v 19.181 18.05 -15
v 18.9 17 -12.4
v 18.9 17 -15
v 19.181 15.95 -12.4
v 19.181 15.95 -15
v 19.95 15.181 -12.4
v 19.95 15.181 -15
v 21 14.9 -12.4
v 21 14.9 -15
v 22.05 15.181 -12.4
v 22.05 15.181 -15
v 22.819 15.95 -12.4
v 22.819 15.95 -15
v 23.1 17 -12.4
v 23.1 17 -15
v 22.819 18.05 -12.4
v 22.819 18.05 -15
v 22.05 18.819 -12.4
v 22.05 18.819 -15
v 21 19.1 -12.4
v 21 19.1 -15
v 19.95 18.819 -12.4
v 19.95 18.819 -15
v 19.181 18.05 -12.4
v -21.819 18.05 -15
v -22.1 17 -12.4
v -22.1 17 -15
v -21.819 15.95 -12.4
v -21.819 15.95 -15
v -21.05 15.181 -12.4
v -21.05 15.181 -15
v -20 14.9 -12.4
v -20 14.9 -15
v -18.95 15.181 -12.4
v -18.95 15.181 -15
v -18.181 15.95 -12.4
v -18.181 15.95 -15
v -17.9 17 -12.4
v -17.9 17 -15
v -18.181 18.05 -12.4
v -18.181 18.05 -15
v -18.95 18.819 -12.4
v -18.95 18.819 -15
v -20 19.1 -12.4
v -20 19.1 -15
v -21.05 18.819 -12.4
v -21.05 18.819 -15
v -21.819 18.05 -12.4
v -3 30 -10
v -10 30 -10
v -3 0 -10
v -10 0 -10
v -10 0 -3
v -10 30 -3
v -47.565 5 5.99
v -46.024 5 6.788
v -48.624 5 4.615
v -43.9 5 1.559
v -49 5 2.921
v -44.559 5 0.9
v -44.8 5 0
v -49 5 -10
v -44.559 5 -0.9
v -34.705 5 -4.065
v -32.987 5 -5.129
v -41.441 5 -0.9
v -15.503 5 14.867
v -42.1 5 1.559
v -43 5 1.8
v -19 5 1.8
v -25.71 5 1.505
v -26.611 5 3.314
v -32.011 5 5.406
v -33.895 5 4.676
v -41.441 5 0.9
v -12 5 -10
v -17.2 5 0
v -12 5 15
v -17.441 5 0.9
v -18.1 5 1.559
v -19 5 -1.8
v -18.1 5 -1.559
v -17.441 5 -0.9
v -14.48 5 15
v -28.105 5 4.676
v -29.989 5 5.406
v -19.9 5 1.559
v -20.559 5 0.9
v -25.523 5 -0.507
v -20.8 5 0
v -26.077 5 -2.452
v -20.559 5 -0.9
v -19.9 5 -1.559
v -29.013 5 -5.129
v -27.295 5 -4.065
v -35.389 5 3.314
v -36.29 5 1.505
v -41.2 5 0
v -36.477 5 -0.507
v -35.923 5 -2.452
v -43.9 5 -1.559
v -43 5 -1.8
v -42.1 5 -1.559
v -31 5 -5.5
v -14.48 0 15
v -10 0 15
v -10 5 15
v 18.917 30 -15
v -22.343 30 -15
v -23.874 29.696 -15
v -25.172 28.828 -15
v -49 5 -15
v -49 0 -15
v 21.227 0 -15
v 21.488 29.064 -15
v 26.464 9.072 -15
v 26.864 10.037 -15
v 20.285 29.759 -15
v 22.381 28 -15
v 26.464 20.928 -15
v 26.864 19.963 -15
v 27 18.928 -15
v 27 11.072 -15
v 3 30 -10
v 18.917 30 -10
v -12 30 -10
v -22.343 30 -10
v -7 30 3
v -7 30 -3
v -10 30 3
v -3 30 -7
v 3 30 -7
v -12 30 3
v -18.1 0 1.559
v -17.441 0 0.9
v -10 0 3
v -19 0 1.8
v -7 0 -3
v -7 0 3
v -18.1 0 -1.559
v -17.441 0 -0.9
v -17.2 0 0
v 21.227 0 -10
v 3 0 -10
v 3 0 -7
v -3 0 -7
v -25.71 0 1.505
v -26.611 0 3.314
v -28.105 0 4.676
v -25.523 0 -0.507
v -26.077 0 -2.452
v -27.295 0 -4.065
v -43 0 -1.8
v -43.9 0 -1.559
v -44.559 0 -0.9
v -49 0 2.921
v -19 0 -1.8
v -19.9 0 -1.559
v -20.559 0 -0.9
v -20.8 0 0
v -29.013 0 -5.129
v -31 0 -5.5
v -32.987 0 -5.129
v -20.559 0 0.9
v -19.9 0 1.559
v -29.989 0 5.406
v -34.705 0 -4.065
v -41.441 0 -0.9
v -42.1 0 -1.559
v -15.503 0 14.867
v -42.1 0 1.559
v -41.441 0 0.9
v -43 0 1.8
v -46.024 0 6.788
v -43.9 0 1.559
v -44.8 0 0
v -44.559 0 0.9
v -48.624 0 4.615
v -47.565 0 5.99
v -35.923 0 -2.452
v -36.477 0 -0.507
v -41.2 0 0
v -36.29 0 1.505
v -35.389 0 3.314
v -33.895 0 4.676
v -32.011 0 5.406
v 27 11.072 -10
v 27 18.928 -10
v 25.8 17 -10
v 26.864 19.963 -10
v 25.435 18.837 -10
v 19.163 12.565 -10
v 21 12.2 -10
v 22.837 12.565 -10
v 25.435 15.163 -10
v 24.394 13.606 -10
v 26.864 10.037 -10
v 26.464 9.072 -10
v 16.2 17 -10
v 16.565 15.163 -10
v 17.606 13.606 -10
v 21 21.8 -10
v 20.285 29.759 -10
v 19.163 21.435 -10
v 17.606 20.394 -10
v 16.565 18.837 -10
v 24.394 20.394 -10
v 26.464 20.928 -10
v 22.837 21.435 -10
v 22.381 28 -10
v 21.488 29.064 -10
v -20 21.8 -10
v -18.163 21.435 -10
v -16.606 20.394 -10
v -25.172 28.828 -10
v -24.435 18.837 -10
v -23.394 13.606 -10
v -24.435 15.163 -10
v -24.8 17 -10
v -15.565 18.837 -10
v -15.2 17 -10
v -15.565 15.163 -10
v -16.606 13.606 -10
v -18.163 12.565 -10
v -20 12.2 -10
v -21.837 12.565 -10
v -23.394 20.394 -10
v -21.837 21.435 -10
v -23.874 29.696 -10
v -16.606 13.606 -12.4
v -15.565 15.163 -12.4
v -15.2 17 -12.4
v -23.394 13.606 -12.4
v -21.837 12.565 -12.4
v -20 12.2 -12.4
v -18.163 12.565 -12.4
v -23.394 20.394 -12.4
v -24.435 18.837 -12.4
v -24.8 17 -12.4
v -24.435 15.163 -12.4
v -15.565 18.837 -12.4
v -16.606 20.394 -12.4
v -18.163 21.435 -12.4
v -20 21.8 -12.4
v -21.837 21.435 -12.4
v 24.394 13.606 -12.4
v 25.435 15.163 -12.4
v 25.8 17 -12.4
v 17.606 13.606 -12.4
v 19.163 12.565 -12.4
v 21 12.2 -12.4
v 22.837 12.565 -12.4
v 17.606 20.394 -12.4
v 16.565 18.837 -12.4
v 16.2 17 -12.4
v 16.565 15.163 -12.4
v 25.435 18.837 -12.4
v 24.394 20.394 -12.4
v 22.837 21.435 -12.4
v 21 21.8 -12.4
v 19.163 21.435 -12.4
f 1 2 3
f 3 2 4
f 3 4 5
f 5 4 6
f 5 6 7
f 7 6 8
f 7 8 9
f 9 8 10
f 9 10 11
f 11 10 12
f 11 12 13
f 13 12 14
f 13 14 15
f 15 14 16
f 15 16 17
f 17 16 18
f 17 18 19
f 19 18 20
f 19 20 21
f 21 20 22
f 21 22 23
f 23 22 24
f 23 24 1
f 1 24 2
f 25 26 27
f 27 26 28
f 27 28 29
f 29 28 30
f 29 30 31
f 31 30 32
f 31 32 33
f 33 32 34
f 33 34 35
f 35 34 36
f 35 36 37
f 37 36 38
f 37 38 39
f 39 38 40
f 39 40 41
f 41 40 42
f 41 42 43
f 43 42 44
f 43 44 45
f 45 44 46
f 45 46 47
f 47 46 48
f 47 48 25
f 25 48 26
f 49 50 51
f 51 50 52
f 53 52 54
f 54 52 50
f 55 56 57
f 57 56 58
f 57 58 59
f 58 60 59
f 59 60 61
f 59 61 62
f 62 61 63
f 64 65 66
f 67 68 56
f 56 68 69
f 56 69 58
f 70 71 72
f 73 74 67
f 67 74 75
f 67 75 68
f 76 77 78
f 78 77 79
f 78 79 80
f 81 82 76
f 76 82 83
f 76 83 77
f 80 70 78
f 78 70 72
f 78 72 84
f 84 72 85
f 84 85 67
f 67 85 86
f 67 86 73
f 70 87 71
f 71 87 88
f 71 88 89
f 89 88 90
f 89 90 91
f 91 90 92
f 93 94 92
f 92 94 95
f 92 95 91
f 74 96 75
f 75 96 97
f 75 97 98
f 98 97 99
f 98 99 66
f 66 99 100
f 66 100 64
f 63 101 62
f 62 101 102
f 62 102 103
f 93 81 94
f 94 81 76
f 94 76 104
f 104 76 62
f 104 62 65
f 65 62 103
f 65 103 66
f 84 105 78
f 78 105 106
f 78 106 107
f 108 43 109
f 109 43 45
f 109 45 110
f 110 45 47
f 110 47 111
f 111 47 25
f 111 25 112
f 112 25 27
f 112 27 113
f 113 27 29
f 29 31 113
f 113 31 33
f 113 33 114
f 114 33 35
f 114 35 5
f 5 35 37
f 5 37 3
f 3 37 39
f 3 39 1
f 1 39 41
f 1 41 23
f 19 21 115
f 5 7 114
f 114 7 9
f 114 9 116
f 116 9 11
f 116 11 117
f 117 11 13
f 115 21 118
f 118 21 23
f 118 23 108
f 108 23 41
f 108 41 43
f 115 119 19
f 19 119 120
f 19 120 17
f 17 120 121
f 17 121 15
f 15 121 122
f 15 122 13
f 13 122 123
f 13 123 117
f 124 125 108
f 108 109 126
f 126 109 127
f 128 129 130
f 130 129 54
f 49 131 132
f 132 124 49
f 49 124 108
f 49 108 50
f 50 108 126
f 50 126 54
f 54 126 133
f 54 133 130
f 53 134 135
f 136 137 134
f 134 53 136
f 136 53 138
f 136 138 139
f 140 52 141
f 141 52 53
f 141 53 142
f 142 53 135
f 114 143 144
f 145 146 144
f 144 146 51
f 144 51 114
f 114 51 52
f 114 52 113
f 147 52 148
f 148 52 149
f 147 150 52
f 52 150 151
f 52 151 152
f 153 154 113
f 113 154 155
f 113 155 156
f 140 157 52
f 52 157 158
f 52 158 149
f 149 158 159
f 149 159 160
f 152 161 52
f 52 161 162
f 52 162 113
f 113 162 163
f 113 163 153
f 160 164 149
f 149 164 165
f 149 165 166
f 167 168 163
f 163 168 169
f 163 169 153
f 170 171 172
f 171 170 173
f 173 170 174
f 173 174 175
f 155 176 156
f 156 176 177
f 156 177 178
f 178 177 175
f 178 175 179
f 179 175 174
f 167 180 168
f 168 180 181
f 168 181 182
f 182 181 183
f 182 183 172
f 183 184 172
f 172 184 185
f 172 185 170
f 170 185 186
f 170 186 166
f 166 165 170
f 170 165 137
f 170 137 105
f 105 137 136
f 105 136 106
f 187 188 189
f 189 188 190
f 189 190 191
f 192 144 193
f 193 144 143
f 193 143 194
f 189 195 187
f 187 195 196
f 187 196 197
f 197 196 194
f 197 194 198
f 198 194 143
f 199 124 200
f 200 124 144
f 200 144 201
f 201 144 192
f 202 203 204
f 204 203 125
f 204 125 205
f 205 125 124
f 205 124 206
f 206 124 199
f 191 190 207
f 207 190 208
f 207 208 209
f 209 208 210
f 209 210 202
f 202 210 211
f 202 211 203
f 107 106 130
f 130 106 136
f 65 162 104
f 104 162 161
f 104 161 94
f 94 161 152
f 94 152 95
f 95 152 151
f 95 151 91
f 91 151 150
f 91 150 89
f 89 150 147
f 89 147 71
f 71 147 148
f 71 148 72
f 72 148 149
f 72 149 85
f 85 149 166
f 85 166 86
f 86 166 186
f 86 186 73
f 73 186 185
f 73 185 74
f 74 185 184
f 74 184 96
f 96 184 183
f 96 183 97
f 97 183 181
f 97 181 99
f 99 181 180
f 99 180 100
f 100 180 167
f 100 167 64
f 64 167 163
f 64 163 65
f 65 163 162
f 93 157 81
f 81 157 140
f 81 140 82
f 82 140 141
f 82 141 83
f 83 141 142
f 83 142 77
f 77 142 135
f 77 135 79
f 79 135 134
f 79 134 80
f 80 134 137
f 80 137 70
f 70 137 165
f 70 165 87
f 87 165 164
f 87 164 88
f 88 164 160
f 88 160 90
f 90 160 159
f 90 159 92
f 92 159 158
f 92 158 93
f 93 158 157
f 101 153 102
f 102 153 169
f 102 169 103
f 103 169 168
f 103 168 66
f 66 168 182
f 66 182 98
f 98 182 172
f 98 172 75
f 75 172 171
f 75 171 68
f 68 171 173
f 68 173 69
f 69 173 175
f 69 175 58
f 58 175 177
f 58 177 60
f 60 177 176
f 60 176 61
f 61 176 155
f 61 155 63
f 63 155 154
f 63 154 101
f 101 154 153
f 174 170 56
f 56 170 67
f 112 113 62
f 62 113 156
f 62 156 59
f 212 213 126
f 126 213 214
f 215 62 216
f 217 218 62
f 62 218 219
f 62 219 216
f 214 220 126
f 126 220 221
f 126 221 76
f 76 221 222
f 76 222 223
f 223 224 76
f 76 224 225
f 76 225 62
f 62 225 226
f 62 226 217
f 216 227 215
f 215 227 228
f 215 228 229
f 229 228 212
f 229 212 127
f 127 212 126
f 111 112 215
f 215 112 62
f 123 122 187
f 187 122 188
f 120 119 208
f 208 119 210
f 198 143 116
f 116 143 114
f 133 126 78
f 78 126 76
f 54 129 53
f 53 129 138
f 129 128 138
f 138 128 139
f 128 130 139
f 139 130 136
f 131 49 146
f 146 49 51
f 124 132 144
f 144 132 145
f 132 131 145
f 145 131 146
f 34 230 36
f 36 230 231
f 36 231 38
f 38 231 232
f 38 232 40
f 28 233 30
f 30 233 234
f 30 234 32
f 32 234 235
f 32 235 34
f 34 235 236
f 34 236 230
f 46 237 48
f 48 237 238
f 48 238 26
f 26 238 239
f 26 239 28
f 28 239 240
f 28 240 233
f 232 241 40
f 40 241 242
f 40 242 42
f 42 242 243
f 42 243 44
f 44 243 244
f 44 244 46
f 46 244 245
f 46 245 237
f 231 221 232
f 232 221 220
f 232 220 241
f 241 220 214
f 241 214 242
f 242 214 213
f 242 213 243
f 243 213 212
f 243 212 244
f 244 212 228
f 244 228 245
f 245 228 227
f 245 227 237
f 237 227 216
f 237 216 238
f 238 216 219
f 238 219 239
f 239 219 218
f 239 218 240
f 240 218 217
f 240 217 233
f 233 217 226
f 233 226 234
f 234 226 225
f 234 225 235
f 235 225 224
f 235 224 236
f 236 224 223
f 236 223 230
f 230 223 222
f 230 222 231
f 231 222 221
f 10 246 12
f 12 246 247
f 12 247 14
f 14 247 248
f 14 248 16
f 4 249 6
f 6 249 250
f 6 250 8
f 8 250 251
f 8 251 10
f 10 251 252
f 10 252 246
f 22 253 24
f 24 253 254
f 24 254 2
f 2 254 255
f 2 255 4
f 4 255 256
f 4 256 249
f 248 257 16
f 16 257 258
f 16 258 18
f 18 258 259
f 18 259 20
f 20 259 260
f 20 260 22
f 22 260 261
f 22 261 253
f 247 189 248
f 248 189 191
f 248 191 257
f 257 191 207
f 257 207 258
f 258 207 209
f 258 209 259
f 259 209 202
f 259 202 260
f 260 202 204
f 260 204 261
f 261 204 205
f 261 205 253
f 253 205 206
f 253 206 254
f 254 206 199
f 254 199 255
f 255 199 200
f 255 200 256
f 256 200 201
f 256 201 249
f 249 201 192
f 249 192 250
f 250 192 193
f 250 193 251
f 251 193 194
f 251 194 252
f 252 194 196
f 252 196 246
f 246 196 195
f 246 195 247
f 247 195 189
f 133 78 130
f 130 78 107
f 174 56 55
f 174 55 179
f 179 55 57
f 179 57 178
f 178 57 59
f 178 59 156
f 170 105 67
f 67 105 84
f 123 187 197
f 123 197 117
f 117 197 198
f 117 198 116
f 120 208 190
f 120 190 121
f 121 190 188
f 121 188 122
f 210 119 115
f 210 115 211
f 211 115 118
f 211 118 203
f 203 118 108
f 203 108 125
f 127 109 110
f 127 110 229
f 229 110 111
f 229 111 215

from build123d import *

# Parameters (mm, degrees)
SKETCH1_W                     = 30
SKETCH1_H                     = 30
BOSS_EXTRUDE1_DEPTH           = 30
SKETCH2_W                     = 20
SKETCH2_H                     = 20
CUT_EXTRUDE1_DEPTH            = 37.742346142
SKETCH3_W                     = 30
SKETCH3_H                     = 5
BOSS_EXTRUDE2_DEPTH           = 40
SKETCH4_R                     = 5.5
SKETCH4_R_2                   = 1.8
CUT_EXTRUDE2_DEPTH            = 65.420493634
CUT_EXTRUDE3_DEPTH            = 63.24949799
SKETCH5_W                     = 5
SKETCH5_H                     = 25
BOSS_EXTRUDE4_DEPTH           = 34
CHAMFER1_SIZE                 = 25
SKETCH8_R                     = 2.1
CUT_EXTRUDE4_DEPTH            = 63.657800791
SKETCH9_W                     = 5
SKETCH9_H                     = 30
BOSS_EXTRUDE5_DEPTH           = 12
CHAMFER2_SIZE                 = 10
CHAMFER2_SIZE2                = 5.773502692
SKETCH10_R                    = 2.1
CUT_EXTRUDE5_DEPTH            = 63.657800791
BODY_MOVE_COPY1_START         = -15
BODY_MOVE_COPY1_DEPTH         = 31
BODY_MOVE_COPY1_START_2       = -10
BODY_MOVE_COPY1_2_DEPTH       = 26
BODY_MOVE_COPY1_3_OUTLINE_W   = 34
BODY_MOVE_COPY1_3_OUTLINE_H   = 5
BODY_MOVE_COPY1_3_DEPTH       = 30
BODY_MOVE_COPY1_4_DEPTH       = 5
BODY_MOVE_COPY1_5_OUTLINE_R   = 5.5
BODY_MOVE_COPY1_5_OUTLINE_R_2 = 1.8
BODY_MOVE_COPY1_5_DEPTH       = 5
SKETCH11_W                    = 3
SKETCH11_H                    = 25
CUT_EXTRUDE6_DEPTH            = 25
SKETCH12_W                    = 25
SKETCH12_H                    = 25
CUT_EXTRUDE7_DEPTH            = 60.380131357
SKETCH13_W                    = 3
SKETCH13_H                    = 6
SKETCH13_W_2                  = 6
SKETCH13_H_2                  = 3
BOSS_EXTRUDE6_DEPTH           = 30
SKETCH14_R                    = 4.8
CUT_EXTRUDE9_DEPTH            = 2.4
CHAMFER3_SIZE                 = 12
CHAMFER3_SIZE2                = 25
FILLET1_R                     = 4
FILLET2_R                     = 4


with BuildPart() as part:
    # Sketch1 → Boss-Extrude1 (new body)
    with BuildSketch(Plane(origin=(0, 0, 0), x_dir=(1, 0, 0), z_dir=(0, 1, 0))):
        Rectangle(SKETCH1_W, SKETCH1_H)
    extrude(amount=BOSS_EXTRUDE1_DEPTH)

    # Sketch2 → Cut-Extrude1 (cut, through all)
    with BuildSketch(Plane(origin=(0, 30, 0), x_dir=(1, 0, 0), z_dir=(0, 1, 0))):
        Rectangle(SKETCH2_W, SKETCH2_H)
    extrude(amount=-CUT_EXTRUDE1_DEPTH, mode=Mode.SUBTRACT)

    # Sketch3 → Boss-Extrude2 (add)
    with BuildSketch(Plane(origin=(15, 0, 0), x_dir=(0, 0, -1), z_dir=(1, 0, 0))):
        with Locations((0, 2.5)):
            Rectangle(SKETCH3_W, SKETCH3_H)
    extrude(amount=BOSS_EXTRUDE2_DEPTH)

    # Sketch4 → Cut-Extrude2 (cut, through all)
    with BuildSketch(Plane.XZ):
        with Locations(Location((31, 0, 0), (0, 0, 270))):
            Circle(SKETCH4_R)
        with Locations(Location((19, 0, 0), (0, 0, 270))):
            Circle(SKETCH4_R_2)
        with Locations(Location((43, 0, 0), (0, 0, 270))):
            Circle(SKETCH4_R_2)
    extrude(amount=-CUT_EXTRUDE2_DEPTH, mode=Mode.SUBTRACT)

    # Sketch7 → Cut-Extrude3 (cut, through all)
    with BuildSketch(Plane(origin=(0, 5, 0), x_dir=(1, 0, 0), z_dir=(0, 1, 0))):
        Polygon((15, -15), (49, -6), (49, 15), (55, 15), (55, -15), align=None)
    extrude(amount=-CUT_EXTRUDE3_DEPTH, mode=Mode.SUBTRACT)

    # Sketch5 → Boss-Extrude4 (add)
    with BuildSketch(Plane(origin=(15, 0, 0), x_dir=(0, 0, -1), z_dir=(1, 0, 0))):
        with Locations((12.5, 17.5)):
            Rectangle(SKETCH5_W, SKETCH5_H)
    extrude(amount=BOSS_EXTRUDE4_DEPTH)

    # Chamfer1
    chamfer1_edges = [part.edges().sort_by_distance(p)[0] for p in [
        (49, 30, -12.5),
    ]]
    chamfer(chamfer1_edges, length=CHAMFER1_SIZE)

    # Sketch8 → Cut-Extrude4 (cut, through all)
    with BuildSketch(Plane.XY.offset(-10)):
        with Locations((20, 17)):
            Circle(SKETCH8_R)
    extrude(amount=-CUT_EXTRUDE4_DEPTH, mode=Mode.SUBTRACT)

    # Sketch9 → Boss-Extrude5 (add)
    with BuildSketch(Plane.ZY.offset(15)):
        with Locations((-12.5, 15)):
            Rectangle(SKETCH9_W, SKETCH9_H)
    extrude(amount=BOSS_EXTRUDE5_DEPTH)

    # Chamfer2
    chamfer2_edges = [part.edges().sort_by_distance(p)[0] for p in [
        (-27, 30, -12.5),
        (-27, 0, -12.5),
    ]]
    chamfer2_side = [part.faces().sort_by_distance(p)[0] for p in [
        (-27, 15, -12.5),
    ]]
    chamfer(chamfer2_edges, length=CHAMFER2_SIZE, length2=CHAMFER2_SIZE2, reference=chamfer2_side[0])

    # Sketch10 → Cut-Extrude5 (cut, through all)
    with BuildSketch(Plane.XY.offset(-10)):
        with Locations((-21, 17)):
            Circle(SKETCH10_R)
    extrude(amount=-CUT_EXTRUDE5_DEPTH, mode=Mode.SUBTRACT)

    # Body-Move/Copy1: read off the stored shape, not the designer's step
    # Body-Move/Copy1 outline → Body-Move/Copy1 (cut)
    with BuildSketch(Plane.XY.offset(BODY_MOVE_COPY1_START)):
        Polygon((24, 30), (21.226497308, 30), (27, 20), (27, 10), (21.226497308, 0), (49, 0), (49, 5), align=None)
        with BuildLine():
            ThreePointArc((-20.5, 14.960392195), (-17.9, 17), (-20.5, 19.039607805))
            ThreePointArc((-20.5, 19.039607805), (-18.9, 17), (-20.5, 14.960392195))
        make_face()
        with BuildLine():
            ThreePointArc((20.5, 14.960392195), (23.1, 17), (20.5, 19.039607805))
            ThreePointArc((20.5, 19.039607805), (22.1, 17), (20.5, 14.960392195))
        make_face()
    extrude(amount=BODY_MOVE_COPY1_DEPTH, mode=Mode.SUBTRACT)

    # Body-Move_Copy1 2 outline → Body-Move_Copy1 2 (cut)
    with BuildSketch(Plane.XY.offset(BODY_MOVE_COPY1_START_2)):
        Polygon((24.113248654, 5), (15, 5), (15, 0), (21.226497308, 0), align=None)
    extrude(amount=BODY_MOVE_COPY1_2_DEPTH, mode=Mode.SUBTRACT)

    # Body-Move_Copy1 3 outline → Body-Move_Copy1 3 (add)
    with BuildSketch(Plane.XY.offset(BODY_MOVE_COPY1_START)):
        with Locations((-32, 2.5)):
            Rectangle(BODY_MOVE_COPY1_3_OUTLINE_W, BODY_MOVE_COPY1_3_OUTLINE_H)
    extrude(amount=BODY_MOVE_COPY1_3_DEPTH)

    # Body-Move_Copy1 4 outline → Body-Move_Copy1 4 (add)
    with BuildSketch(Plane.XY.offset(BODY_MOVE_COPY1_START)):
        Polygon((-27, 20), (-21.226497308, 30), (-24, 30), (-49, 5), (-24.113248654, 5), (-27, 10), align=None)
        with BuildLine():
            ThreePointArc((-20.5, 14.960392195), (-22.1, 17), (-20.5, 19.039607805))
            ThreePointArc((-20.5, 19.039607805), (-23.1, 17), (-20.5, 14.960392195))
        make_face()
        with BuildLine():
            ThreePointArc((20.5, 14.960392195), (18.9, 17), (20.5, 19.039607805))
            ThreePointArc((20.5, 19.039607805), (17.9, 17), (20.5, 14.960392195))
        make_face()
    extrude(amount=BODY_MOVE_COPY1_4_DEPTH)

    # Body-Move_Copy1 5 outline → Body-Move_Copy1 5 (cut)
    with BuildSketch(Plane(origin=(0, 0, 0), x_dir=(1, 0, 0), z_dir=(0, 1, 0))):
        with Locations((-31, 0)):
            Circle(BODY_MOVE_COPY1_5_OUTLINE_R)
        with Locations((-19, 0)):
            Circle(BODY_MOVE_COPY1_5_OUTLINE_R_2)
        with Locations((-43, 0)):
            Circle(BODY_MOVE_COPY1_5_OUTLINE_R_2)
        Polygon((-49, -15), (-15, -15), (-49, -6), align=None)
    extrude(amount=BODY_MOVE_COPY1_5_DEPTH, mode=Mode.SUBTRACT)

    # Sketch11 → Cut-Extrude6 (cut)
    with BuildSketch(Plane(origin=(0, 30, 0), x_dir=(1, 0, 0), z_dir=(0, 1, 0))):
        with Locations((-13.5, -2.5)):
            Rectangle(SKETCH11_W, SKETCH11_H)
    extrude(amount=-CUT_EXTRUDE6_DEPTH, mode=Mode.SUBTRACT)

    # Sketch12 → Cut-Extrude7 (cut, through all)
    with BuildSketch(Plane(origin=(0, 30, 0), x_dir=(1, 0, 0), z_dir=(0, 1, 0))):
        with Locations((2.5, -2.5)):
            Rectangle(SKETCH12_W, SKETCH12_H)
    extrude(amount=-CUT_EXTRUDE7_DEPTH, mode=Mode.SUBTRACT)

    # Sketch13 → Boss-Extrude6 (add)
    with BuildSketch(Plane(origin=(0, 30, 0), x_dir=(1, 0, 0), z_dir=(0, 1, 0))):
        with Locations((-8.5, 0)):
            Rectangle(SKETCH13_W, SKETCH13_H)
        with Locations((0, 8.5)):
            Rectangle(SKETCH13_W_2, SKETCH13_H_2)
    extrude(amount=-BOSS_EXTRUDE6_DEPTH)

    # Sketch14 → Cut-Extrude9 (cut)
    with BuildSketch(Plane.XY.offset(-10)):
        with Locations((-20, 17)):
            Circle(SKETCH14_R)
        with Locations((21, 17)):
            Circle(SKETCH14_R)
    extrude(amount=-CUT_EXTRUDE9_DEPTH, mode=Mode.SUBTRACT)

    # Chamfer3
    chamfer3_edges = [part.edges().sort_by_distance(p)[0] for p in [
        (-11, 30, 15),
    ]]
    chamfer3_side = [part.faces().sort_by_distance(p)[0] for p in [
        (-18, 30, -10.542718717),
    ]]
    chamfer(chamfer3_edges, length=CHAMFER3_SIZE, length2=CHAMFER3_SIZE2, reference=chamfer3_side[0])

    # Fillet1
    fillet1_edges = [part.edges().sort_by_distance(p)[0] for p in [
        (-49, 2.5, 6),
        (-15, 2.5, 15),
    ]]
    fillet(fillet1_edges, radius=FILLET1_R)

    # Fillet2
    fillet2_edges = [part.edges().sort_by_distance(p)[0] for p in [
        (27, 10, -12.5),
        (27, 20, -12.5),
        (21.226497308, 30, -12.5),
        (-24, 30, -12.5),
    ]]
    fillet(fillet2_edges, radius=FILLET2_R)


solid = part.part
